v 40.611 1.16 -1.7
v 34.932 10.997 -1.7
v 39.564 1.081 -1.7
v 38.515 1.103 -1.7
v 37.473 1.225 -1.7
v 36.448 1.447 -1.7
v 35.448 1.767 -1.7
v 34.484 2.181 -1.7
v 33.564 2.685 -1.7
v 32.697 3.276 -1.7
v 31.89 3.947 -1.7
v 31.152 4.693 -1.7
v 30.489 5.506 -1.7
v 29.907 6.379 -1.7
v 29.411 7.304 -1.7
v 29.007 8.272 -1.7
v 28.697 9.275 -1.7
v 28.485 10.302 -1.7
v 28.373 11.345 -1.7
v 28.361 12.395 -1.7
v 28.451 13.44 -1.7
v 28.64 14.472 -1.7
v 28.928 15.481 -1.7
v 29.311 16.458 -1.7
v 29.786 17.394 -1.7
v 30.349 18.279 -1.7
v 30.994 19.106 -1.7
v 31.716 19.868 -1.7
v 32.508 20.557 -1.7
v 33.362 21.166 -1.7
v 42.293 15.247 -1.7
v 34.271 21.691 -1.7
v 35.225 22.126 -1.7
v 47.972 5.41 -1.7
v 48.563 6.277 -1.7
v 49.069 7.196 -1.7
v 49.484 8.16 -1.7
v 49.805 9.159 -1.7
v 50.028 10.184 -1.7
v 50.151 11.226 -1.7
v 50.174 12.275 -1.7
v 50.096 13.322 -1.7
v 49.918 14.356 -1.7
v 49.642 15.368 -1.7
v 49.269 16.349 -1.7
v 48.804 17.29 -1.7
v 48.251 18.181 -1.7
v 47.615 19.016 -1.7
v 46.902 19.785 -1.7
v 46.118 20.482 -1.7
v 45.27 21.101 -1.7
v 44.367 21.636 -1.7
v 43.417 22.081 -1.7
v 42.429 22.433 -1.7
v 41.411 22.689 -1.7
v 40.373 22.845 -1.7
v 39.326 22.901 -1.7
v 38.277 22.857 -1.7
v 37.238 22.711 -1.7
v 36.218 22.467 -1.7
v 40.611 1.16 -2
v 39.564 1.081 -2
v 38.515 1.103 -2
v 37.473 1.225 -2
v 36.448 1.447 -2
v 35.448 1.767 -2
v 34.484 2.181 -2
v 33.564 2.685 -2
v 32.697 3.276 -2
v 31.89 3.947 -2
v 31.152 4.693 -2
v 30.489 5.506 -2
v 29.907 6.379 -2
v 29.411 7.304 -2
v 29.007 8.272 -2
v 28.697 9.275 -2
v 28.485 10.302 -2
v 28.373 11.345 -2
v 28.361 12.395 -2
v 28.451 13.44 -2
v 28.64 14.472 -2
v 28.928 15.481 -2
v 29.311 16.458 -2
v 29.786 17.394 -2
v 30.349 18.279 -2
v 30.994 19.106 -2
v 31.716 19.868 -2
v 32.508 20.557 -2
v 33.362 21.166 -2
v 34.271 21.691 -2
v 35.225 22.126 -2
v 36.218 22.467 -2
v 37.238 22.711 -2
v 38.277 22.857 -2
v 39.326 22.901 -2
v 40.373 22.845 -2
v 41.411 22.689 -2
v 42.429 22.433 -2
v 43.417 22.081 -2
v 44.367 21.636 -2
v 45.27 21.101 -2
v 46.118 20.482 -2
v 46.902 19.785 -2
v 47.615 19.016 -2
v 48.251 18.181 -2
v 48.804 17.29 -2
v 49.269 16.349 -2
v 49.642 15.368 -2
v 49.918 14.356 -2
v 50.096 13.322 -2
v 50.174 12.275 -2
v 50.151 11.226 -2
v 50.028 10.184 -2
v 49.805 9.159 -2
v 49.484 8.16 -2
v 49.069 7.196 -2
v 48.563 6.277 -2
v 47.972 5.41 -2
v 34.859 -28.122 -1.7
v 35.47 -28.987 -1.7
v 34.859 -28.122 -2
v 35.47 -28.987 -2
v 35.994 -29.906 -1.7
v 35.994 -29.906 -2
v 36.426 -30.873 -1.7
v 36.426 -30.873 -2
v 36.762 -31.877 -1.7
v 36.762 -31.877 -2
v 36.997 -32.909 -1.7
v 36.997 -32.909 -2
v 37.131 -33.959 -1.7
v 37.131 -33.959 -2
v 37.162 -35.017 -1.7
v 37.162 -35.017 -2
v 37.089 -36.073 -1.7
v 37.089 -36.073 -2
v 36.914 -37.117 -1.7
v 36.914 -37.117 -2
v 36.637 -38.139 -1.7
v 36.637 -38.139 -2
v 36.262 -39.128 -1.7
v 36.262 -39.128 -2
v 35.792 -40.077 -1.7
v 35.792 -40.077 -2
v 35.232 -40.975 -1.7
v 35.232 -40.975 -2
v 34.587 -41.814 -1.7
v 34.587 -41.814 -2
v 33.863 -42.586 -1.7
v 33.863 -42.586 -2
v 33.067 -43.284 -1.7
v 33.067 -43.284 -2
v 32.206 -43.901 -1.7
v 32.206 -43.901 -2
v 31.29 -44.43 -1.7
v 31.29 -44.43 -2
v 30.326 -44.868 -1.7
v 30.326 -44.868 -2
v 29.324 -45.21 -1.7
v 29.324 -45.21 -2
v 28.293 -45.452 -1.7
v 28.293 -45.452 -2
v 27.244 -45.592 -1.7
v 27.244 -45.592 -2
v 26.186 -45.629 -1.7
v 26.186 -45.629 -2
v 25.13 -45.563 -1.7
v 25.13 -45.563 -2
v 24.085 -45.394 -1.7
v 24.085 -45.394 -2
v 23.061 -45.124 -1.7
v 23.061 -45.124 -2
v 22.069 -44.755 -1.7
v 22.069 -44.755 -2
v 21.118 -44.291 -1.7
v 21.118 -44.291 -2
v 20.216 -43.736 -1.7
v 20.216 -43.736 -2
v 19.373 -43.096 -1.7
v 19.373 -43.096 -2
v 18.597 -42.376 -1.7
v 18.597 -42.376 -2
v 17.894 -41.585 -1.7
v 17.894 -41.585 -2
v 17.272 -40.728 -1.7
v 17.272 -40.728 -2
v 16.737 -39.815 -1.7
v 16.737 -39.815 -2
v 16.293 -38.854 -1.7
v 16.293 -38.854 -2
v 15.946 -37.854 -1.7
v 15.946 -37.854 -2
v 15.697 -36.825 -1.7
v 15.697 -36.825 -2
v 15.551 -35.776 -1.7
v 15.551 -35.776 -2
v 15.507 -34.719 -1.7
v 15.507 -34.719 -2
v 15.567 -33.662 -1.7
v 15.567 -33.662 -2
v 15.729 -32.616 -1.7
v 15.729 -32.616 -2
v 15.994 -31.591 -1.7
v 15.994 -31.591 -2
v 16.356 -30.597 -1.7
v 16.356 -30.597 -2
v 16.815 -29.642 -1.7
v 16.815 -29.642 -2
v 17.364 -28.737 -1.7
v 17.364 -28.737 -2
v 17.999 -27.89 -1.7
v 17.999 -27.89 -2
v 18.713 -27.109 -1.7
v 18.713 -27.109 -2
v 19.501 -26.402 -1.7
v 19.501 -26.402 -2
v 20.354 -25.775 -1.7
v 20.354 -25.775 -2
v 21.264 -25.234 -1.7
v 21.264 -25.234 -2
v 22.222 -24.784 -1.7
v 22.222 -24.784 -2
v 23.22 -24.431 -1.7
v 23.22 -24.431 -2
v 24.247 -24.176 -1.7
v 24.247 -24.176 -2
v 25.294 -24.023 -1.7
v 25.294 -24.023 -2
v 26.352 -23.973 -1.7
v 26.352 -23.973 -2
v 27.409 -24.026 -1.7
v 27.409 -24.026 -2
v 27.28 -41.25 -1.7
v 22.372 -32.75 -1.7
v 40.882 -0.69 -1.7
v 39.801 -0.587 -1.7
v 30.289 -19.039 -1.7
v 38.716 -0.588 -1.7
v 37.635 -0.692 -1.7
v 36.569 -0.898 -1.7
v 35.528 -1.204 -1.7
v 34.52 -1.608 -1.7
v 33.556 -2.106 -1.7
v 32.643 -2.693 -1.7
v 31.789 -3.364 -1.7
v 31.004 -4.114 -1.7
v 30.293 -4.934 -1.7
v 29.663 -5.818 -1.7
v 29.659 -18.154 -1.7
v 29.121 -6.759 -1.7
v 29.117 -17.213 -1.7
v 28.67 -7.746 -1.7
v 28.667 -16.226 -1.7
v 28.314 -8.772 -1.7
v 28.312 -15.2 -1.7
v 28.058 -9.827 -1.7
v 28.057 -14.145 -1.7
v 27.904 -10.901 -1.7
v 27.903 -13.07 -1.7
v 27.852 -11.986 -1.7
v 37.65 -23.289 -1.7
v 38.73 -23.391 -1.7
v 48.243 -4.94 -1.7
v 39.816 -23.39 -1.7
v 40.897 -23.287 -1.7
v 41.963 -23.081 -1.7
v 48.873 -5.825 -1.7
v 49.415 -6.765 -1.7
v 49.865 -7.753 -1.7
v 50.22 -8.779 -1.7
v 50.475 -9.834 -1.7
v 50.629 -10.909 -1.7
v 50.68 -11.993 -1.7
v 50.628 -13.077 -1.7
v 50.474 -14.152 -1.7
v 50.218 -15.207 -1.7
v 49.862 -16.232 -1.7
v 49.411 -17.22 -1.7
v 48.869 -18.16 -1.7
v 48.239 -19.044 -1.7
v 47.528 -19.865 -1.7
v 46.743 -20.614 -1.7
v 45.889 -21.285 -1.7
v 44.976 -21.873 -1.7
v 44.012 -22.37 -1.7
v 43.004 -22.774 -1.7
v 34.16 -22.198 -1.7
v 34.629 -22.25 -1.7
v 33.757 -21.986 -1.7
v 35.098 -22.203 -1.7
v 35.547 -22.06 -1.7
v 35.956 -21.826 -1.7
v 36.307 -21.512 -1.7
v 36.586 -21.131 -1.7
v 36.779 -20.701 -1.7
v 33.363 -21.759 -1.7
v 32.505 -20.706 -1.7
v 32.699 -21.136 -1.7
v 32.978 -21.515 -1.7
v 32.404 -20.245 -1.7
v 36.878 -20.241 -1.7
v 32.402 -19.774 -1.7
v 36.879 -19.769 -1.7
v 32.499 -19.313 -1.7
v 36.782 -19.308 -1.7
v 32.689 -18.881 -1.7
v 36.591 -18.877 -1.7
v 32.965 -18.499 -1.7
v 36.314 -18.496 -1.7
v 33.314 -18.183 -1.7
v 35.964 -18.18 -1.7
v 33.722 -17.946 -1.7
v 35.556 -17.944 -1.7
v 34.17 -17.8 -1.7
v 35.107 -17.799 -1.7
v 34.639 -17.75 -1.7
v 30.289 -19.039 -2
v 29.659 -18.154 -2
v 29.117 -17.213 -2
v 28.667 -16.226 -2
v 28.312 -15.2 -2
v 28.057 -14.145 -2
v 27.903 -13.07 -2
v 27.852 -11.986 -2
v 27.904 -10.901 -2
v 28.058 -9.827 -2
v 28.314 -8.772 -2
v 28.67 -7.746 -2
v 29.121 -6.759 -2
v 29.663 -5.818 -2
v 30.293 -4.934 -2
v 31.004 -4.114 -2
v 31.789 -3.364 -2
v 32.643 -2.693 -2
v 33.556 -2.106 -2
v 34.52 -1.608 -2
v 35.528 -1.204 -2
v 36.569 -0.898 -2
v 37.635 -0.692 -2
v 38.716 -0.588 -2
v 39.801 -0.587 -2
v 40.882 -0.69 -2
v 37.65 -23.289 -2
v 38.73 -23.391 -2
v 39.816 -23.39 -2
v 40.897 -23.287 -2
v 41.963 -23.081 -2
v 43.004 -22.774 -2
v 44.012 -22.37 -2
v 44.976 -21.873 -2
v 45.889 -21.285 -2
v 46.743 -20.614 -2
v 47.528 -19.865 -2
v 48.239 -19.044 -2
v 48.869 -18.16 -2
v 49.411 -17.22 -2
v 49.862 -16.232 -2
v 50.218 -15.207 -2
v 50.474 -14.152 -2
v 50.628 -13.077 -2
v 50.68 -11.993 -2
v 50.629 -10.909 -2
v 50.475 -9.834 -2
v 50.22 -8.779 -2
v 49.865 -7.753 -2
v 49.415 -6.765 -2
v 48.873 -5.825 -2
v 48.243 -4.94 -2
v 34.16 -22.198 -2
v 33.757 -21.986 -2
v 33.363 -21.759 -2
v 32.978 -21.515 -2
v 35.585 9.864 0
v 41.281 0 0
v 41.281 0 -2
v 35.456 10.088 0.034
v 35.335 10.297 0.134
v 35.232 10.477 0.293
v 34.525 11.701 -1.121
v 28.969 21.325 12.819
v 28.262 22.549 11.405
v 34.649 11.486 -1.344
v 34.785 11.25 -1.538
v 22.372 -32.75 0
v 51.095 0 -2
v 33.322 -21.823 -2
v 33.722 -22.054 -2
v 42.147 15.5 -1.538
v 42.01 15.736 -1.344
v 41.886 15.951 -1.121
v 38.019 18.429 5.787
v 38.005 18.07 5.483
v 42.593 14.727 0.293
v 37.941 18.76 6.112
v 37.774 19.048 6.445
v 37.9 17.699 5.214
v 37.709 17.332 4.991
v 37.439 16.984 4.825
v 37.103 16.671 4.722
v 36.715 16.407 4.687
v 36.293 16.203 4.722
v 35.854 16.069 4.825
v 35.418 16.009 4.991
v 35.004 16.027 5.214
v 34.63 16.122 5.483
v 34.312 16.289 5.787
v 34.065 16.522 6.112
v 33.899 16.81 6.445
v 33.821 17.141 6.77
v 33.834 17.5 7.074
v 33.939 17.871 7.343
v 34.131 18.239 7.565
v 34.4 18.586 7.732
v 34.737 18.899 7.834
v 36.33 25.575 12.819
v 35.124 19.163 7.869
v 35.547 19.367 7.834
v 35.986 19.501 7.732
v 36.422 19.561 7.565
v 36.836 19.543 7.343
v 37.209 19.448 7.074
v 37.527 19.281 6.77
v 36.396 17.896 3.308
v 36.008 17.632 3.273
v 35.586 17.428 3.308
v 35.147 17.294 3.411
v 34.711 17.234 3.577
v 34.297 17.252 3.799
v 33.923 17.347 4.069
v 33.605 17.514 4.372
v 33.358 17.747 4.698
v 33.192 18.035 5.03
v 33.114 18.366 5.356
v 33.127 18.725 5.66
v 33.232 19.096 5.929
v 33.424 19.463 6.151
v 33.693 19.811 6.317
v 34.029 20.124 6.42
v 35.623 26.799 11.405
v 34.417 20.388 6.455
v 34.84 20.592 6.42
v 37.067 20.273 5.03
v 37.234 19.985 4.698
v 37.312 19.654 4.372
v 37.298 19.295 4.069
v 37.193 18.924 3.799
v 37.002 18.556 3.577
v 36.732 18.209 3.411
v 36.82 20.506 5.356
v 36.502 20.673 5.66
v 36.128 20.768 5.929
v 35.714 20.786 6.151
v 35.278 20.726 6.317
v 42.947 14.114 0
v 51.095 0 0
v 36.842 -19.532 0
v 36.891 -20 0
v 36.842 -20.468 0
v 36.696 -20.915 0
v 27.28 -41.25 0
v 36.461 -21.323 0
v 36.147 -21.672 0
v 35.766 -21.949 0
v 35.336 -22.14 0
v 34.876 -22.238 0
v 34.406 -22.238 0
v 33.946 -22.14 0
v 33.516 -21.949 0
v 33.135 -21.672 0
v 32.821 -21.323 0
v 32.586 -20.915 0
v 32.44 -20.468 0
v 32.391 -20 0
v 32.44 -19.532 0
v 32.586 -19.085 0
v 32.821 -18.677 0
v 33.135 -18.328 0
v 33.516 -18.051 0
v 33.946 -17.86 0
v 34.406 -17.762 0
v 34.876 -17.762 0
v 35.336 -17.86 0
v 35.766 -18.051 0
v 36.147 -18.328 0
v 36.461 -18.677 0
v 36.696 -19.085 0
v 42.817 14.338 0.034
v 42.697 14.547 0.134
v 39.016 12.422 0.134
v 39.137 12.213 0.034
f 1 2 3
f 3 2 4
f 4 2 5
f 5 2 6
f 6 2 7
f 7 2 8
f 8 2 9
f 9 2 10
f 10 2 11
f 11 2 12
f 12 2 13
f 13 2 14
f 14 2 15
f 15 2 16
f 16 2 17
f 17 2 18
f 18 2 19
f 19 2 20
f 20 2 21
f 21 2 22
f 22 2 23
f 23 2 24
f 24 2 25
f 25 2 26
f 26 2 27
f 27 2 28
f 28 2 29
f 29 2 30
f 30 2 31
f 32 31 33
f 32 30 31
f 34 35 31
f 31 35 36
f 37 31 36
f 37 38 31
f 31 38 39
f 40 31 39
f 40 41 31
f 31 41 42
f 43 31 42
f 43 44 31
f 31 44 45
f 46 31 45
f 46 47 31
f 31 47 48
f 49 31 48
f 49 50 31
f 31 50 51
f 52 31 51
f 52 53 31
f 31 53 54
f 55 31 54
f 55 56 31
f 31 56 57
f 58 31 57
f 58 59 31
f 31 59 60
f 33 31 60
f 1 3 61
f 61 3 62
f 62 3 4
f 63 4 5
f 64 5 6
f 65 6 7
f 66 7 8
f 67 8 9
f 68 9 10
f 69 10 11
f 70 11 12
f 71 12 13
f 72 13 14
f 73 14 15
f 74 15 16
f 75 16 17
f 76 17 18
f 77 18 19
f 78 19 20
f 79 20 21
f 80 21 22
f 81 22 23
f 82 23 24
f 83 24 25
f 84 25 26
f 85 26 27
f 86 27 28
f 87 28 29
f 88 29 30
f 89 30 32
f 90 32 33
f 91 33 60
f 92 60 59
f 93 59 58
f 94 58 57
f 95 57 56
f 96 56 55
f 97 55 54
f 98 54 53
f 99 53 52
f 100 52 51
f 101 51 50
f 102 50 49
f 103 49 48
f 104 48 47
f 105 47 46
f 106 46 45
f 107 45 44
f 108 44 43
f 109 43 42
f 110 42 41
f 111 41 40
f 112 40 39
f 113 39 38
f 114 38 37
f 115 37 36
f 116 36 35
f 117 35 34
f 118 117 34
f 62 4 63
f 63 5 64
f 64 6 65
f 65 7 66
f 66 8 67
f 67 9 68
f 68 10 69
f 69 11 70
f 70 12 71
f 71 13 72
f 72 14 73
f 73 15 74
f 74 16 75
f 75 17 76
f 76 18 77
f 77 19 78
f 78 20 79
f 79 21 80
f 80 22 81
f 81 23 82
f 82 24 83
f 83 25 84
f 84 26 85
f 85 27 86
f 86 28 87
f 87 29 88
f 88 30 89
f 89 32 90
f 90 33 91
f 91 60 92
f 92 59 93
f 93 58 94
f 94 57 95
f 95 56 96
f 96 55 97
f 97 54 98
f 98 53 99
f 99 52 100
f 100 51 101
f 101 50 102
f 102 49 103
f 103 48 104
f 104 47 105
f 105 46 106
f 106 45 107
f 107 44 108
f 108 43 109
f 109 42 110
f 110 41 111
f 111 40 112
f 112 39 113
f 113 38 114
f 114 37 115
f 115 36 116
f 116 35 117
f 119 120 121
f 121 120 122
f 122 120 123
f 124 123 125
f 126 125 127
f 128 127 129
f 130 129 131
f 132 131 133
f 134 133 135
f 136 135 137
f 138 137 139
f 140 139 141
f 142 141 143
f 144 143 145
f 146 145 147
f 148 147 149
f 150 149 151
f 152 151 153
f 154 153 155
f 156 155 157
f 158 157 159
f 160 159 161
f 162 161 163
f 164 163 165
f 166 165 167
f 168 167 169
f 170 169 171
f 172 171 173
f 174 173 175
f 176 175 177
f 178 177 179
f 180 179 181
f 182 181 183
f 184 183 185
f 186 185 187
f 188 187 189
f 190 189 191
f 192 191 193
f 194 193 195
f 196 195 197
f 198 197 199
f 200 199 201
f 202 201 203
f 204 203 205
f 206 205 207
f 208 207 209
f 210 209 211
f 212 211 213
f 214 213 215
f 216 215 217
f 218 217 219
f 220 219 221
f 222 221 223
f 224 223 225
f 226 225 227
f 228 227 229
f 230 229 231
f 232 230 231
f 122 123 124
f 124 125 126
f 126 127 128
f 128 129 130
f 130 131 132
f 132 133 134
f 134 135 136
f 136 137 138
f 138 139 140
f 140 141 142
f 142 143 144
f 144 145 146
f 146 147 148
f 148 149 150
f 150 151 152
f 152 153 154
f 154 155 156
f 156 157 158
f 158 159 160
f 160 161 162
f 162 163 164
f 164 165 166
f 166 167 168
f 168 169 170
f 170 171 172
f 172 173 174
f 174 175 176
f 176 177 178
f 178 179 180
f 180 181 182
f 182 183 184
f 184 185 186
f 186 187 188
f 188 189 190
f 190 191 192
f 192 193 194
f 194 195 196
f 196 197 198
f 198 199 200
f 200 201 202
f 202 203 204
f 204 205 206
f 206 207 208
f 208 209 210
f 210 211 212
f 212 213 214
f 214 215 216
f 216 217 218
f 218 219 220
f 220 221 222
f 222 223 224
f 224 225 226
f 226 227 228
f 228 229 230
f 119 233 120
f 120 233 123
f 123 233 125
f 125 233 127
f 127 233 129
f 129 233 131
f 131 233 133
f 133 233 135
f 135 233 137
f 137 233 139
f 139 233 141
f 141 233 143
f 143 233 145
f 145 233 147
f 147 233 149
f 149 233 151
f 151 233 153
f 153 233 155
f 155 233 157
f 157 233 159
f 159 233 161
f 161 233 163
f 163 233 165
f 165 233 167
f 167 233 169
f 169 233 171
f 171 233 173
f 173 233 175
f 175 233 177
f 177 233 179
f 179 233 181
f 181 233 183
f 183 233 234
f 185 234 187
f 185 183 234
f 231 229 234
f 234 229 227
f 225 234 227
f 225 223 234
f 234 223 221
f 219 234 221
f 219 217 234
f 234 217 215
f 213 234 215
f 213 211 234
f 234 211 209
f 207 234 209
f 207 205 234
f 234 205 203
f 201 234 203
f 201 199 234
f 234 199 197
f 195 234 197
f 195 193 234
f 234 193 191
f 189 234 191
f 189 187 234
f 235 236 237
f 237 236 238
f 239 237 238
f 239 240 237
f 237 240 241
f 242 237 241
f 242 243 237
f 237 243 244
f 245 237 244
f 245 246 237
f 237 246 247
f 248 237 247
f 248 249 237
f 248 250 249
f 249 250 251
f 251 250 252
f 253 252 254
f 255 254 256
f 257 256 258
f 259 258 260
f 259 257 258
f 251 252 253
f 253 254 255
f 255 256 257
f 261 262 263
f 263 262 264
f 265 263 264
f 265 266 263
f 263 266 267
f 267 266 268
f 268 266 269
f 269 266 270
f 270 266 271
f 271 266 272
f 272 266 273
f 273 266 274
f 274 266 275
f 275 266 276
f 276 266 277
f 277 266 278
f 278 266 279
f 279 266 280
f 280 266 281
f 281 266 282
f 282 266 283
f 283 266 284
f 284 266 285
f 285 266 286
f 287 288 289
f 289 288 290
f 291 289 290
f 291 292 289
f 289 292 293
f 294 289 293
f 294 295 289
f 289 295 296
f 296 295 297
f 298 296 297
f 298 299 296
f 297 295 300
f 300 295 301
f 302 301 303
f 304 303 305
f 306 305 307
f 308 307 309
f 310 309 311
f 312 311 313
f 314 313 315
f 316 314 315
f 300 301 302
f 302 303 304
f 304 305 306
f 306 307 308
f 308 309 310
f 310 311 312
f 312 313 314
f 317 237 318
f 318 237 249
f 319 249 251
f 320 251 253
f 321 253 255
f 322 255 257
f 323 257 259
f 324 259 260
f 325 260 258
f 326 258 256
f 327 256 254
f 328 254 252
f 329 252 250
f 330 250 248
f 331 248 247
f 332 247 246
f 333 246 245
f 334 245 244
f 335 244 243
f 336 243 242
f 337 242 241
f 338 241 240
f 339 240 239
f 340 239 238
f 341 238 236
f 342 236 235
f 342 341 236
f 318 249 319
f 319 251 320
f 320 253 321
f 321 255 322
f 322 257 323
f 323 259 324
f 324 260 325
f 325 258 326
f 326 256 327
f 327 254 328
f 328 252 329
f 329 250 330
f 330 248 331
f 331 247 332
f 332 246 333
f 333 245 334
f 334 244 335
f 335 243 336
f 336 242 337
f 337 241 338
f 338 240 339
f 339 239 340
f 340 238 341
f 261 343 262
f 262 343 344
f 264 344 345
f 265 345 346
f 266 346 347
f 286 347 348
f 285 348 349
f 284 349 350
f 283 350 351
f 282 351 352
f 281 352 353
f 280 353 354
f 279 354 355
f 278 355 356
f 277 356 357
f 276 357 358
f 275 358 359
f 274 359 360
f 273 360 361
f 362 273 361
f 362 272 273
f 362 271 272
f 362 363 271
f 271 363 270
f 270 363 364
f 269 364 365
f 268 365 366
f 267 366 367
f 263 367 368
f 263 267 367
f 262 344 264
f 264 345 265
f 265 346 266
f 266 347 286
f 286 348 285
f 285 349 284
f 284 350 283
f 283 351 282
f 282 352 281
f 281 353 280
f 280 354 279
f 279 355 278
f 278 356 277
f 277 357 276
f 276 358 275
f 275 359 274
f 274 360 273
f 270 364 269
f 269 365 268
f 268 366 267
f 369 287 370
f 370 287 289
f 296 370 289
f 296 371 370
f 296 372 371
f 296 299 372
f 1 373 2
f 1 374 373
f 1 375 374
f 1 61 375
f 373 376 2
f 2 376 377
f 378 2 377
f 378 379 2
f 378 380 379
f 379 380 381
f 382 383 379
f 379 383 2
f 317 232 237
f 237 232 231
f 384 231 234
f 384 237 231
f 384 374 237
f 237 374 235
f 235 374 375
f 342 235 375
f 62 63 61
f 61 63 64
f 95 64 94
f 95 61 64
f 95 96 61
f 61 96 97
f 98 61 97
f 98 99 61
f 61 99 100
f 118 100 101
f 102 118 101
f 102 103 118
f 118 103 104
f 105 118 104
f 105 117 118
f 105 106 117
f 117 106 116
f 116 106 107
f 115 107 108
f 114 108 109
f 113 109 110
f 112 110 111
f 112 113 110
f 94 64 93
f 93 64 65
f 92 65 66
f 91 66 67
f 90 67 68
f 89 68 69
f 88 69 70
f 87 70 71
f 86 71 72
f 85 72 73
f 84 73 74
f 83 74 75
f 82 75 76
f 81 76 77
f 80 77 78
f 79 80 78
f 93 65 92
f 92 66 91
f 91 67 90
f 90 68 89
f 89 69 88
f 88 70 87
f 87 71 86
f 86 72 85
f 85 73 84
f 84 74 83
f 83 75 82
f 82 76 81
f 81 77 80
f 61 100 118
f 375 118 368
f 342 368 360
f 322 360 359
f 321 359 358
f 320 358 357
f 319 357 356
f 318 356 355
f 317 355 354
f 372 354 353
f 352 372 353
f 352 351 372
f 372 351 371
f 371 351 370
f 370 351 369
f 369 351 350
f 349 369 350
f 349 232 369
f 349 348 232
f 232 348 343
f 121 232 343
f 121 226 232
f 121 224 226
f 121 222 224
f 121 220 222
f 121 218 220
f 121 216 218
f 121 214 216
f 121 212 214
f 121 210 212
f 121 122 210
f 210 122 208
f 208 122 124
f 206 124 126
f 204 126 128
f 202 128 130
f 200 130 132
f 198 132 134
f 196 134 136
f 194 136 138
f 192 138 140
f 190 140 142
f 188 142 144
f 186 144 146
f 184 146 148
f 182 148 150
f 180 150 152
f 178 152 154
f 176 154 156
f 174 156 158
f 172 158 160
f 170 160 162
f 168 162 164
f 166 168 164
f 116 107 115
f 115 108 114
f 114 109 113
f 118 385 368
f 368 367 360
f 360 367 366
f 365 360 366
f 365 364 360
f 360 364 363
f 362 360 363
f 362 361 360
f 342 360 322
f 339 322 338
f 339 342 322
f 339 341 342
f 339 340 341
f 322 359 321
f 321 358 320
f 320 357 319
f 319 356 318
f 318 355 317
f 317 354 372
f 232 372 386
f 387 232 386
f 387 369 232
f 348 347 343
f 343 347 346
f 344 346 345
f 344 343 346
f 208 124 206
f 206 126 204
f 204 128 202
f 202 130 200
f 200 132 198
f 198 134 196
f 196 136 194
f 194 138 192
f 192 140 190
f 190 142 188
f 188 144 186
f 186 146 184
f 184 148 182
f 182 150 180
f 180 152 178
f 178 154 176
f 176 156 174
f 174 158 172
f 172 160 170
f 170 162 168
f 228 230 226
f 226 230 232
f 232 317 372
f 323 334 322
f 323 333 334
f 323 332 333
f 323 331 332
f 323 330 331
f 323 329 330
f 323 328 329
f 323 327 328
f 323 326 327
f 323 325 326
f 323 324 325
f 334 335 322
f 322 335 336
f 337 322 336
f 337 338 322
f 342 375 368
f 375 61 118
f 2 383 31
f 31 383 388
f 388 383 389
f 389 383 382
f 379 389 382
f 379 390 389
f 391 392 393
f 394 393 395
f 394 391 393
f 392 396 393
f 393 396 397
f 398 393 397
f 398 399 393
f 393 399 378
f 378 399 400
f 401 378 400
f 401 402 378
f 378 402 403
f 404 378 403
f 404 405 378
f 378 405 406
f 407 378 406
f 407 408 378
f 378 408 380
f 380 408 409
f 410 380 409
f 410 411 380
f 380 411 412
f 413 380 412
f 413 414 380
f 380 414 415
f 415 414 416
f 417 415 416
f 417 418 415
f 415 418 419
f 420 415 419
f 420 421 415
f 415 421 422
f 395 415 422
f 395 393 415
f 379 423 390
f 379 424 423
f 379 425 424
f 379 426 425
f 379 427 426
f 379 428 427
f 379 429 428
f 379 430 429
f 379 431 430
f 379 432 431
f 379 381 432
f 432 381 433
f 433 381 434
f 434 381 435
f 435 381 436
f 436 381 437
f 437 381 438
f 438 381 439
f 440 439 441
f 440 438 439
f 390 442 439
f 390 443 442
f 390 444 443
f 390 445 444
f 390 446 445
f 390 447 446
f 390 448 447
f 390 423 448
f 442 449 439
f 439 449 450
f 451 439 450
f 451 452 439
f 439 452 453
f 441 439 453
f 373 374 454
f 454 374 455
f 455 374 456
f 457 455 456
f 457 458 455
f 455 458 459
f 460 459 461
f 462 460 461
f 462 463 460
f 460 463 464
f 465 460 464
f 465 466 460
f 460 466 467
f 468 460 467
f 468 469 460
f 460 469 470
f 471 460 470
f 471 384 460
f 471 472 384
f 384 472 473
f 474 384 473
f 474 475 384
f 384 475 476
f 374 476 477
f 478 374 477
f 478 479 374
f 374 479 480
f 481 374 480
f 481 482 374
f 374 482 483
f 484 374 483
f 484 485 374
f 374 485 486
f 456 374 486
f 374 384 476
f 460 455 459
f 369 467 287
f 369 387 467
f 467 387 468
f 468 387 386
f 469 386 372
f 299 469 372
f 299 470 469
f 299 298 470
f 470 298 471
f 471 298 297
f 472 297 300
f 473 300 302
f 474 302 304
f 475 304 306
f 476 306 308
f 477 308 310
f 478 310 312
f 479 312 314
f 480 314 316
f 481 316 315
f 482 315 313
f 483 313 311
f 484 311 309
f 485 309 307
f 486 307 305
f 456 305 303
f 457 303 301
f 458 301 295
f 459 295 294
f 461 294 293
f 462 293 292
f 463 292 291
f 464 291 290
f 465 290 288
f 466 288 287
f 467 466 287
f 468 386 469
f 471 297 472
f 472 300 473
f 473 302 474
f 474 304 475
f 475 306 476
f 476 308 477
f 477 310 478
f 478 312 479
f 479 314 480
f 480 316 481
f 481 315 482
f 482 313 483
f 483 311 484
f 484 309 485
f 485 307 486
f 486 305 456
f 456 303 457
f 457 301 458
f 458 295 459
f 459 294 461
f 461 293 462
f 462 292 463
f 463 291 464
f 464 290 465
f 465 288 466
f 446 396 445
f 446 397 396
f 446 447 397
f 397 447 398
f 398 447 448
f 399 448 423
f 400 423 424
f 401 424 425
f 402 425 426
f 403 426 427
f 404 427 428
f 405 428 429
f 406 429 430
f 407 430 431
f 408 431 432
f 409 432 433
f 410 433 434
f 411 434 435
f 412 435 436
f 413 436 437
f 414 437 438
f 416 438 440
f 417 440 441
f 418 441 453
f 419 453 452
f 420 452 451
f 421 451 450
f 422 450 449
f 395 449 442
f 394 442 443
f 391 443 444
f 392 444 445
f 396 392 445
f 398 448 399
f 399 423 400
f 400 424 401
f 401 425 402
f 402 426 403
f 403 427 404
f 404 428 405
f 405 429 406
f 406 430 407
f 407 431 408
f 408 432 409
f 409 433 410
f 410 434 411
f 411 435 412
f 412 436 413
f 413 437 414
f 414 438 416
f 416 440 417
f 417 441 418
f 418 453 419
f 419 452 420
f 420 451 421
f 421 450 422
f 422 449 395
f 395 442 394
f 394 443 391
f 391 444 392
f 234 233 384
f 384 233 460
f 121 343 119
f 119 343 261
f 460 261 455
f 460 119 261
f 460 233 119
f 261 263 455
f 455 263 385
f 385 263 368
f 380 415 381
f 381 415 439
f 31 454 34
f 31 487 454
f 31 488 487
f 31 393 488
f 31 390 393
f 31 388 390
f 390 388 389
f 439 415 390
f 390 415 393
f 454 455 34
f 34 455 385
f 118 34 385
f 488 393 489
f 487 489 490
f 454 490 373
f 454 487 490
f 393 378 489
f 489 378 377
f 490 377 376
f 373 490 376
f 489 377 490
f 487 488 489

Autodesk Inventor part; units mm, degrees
ref_plane "YZ Plane" through (0, 0, 0) normal (1, 0, 0) x (0, 1, 0)
ref_plane "XZ Plane" through (0, 0, 0) normal (0, 1, 0) x (-1, 0, 0)
sketch "Sketch1" plane through (0, 0, 0) normal (0, 0, 1) x (1, 0, 0)
  circle A0 centre (0, 0) radius 7.5
  line L0 (-21.2869, 0) -> (22.3896, 0) construction
  line L1 (0, 21.9302) -> (0, -69.0741) construction
  line L2 (24.9778, -67) -> (-24.9778, -67) construction
  line L3 (-17.5, -57) -> (17.5, -57)
  line L4 (17.5, -57) -> (17.5, -67)
  line L5 (17.5, -67) -> (-17.5, -67)
  line L6 (-17.5, -67) -> (-17.5, -57)
  line L7 (-37.5278, -67) -> (-18.5, -67)
  line L8 (-18.5, -67) -> (-18.5, -56)
  line L9 (-17.5, -62) -> (17.5, -62) construction
  line L10 (-18.5, -59) -> (-22.5, -59)
  line L11 (-22.5, -59) -> (-22.5, -65)
  line L12 (-22.5, -65) -> (-18.5, -65)
  line L13 (-18.5, -65) -> (-18.5, -59)
  line L14 (-17.5, -60) -> (-21.5, -60)
  line L15 (-21.5, -60) -> (-21.5, -64)
  line L16 (-21.5, -64) -> (-17.5, -64)
  line L17 (-17.5, -64) -> (-17.5, -60)
  line L18 (-18.5, -56) -> (-28.8675, -56)
  line L19 (17.5, -60) -> (21.5, -60)
  line L20 (21.5, -60) -> (21.5, -64)
  line L21 (21.5, -64) -> (17.5, -64)
  line L22 (17.5, -64) -> (17.5, -60)
  line L23 (18.5, -67) -> (18.5, -56)
  line L24 (18.5, -67) -> (37.5278, -67)
  line L25 (18.5, -65) -> (22.5, -65)
  line L26 (22.5, -65) -> (22.5, -59)
  line L27 (22.5, -59) -> (18.5, -59)
  line L28 (18.5, -59) -> (18.5, -65)
  line L29 (18.5, -56) -> (28.8675, -56)
  line L30 (-23.7704, -40) -> (28.6931, -40) construction
  line L31 (-17.1762, -35.75) -> (17.1762, -35.75)
  line L32 (-22.0836, -44.25) -> (22.0836, -44.25)
  circle A1 centre (0, -40) radius 2.25
  line L33 (-7.5, -16) -> (7.5, -16)
  line L34 (7.5, -16) -> (7.5, -21)
  line L35 (7.5, -26) -> (-7.5, -26)
  line L36 (-7.5, -26) -> (-7.5, -24)
  line L37 (7.5, -21) -> (-7.5, -21) construction
  line L38 (-7.5, -18) -> (-3.5, -18)
  line L39 (-3.5, -18) -> (-3.5, -21)
  line L40 (-3.5, -24) -> (-7.5, -24)
  line L41 (-7.5, -24) -> (-7.5, -23)
  line L42 (-8.5, -19) -> (-4.5, -19)
  line L43 (-4.5, -19) -> (-4.5, -23)
  line L44 (-4.5, -23) -> (-8.5, -23)
  line L45 (-8.5, -23) -> (-8.5, -19)
  line L46 (7.5, -18) -> (3.5, -18)
  line L47 (3.5, -18) -> (3.5, -21)
  line L48 (3.5, -24) -> (7.5, -24)
  line L49 (7.5, -24) -> (7.5, -18)
  line L50 (8.5, -19) -> (4.5, -19)
  line L51 (4.5, -19) -> (4.5, -23)
  line L52 (4.5, -23) -> (8.5, -23)
  line L53 (8.5, -23) -> (8.5, -19)
  line L54 (-9.815, -19) -> (-31.1769, -56)
  line L55 (-7.5056, -19) -> (-28.8675, -56)
  line L56 (7.5056, -19) -> (28.8675, -56)
  line L57 (-4.5, -21) -> (-8.5, -21)
  line L58 (4.5, -21) -> (8.5, -21)
  line L59 (-21.5, -62) -> (-17.5, -62)
  line L60 (17.5, -62) -> (21.5, -62)
  line L61 (-22.5, -62) -> (-18.5, -62)
  line L62 (22.5, -62) -> (18.5, -62)
  line L63 (-7.5, -21) -> (-3.5, -21)
  line L64 (3.5, -21) -> (7.5, -21)
  line L65 (-28.8675, -56) -> (-31.1769, -56)
  line L66 (28.8675, -56) -> (31.1769, -56)
  line L67 (-10.8853, -24.8539) -> (-12.6173, -23.8539)
  line L68 (10.8875, -24.8576) -> (12.6195, -23.8576)
  line L69 (7.5, -23) -> (7.5, -24)
  line L70 (-7.5, -23) -> (-7.5, -21)
  line L71 (-7.5, -24) -> (-7.5, -16)
  line L72 (7.5, -24) -> (7.5, -26)
  line L73 (-7.5, -21) -> (-7.5, -18)
  line L74 (-3.5, -21) -> (-3.5, -24)
  line L75 (3.5, -21) -> (3.5, -24)
  line L76 (7.5, -21) -> (7.5, -23)
  line L77 (-18.4752, 0) -> (-9.2376, 16)
  line L78 (-9.2376, 16) -> (9.2376, 16)
  line L79 (9.2376, 16) -> (18.4752, 0)
  line L80 (18.4752, 0) -> (9.2376, -16)
  line L81 (9.2376, -16) -> (-9.2376, -16)
  line L82 (-9.2376, -16) -> (-18.4752, 0)
  line L83 (-77.3649, 0) -> (-38.6825, 67) construction
  line L84 (-38.6825, 67) -> (38.6825, 67) construction
  line L85 (38.6825, 67) -> (77.3649, 0) construction
  line L86 (77.3649, 0) -> (38.6825, -67) construction
  line L87 (38.6825, -67) -> (-38.6825, -67) construction
  line L88 (-38.6825, -67) -> (-77.3649, 0) construction
  line L89 (-9.2376, -16) -> (-38.6825, -67) construction
  line L90 (9.2376, -16) -> (38.6825, -67) construction
  line L91 (0, -16.7974) -> (0, -26) construction
  line L92 (9.815, -19) -> (31.1769, -56)
  line L93 (-8.5, -19) -> (-9.815, -19)
  line L94 (8.5, -19) -> (9.815, -19)
  line L95 (-8.5, -23) -> (-9.815, -23)
  line L96 (8.5, -23) -> (9.815, -23)
  line L97 (-31.1769, -56) -> (-37.5278, -67)
  line L98 (31.1769, -56) -> (37.5278, -67)
  circle A2 centre (12.25, 0) radius 2.25
  circle A3 centre (6.125, 10.6088) radius 2.25
  circle A4 centre (-6.125, 10.6088) radius 2.25
  circle A5 centre (-12.25, 0) radius 2.25
  circle A6 centre (-6.125, -10.6088) radius 2.25
  circle A7 centre (6.125, -10.6088) radius 2.25
  line L99 (22.3723, -32.75) -> (39.5485, -3)
  line L100 (27.2798, -41.25) -> (49.3634, -3)
  circle A8 centre (34.641, -20) radius 2.25
  line L101 (39.5485, 3) -> (22.3723, 32.75)
  line L102 (49.3634, 3) -> (27.2798, 41.25)
  circle A9 centre (34.641, 20) radius 2.25
  line L103 (17.1762, 35.75) -> (-17.1762, 35.75)
  line L104 (22.0836, 44.25) -> (-22.0836, 44.25)
  circle A10 centre (0, 40) radius 2.25
  line L105 (-22.3723, 32.75) -> (-39.5485, 3)
  line L106 (-27.2798, 41.25) -> (-49.3634, 3)
  circle A11 centre (-34.641, 20) radius 2.25
  line L107 (-39.5485, -3) -> (-22.3723, -32.75)
  line L108 (-49.3634, -3) -> (-27.2798, -41.25)
  circle A12 centre (-34.641, -20) radius 2.25
  line L109 (22.3723, -32.75) -> (27.2798, -41.25)
  line L110 (49.3634, -3) -> (51.0955, 0)
  line L111 (49.3634, 3) -> (51.0955, 0)
  line L112 (39.5485, -3) -> (41.2805, 0)
  line L113 (39.5485, 3) -> (41.2805, 0)
  line L114 (7.3612, 4.25) -> (38.8268, 4.25)
  line L115 (7.3612, -4.25) -> (38.8268, -4.25)
  arc A13 (8.5, 0) -> (7.3612, 4.25) centre (0, 0) ccw
  arc A14 (7.3612, -4.25) -> (8.5, 0) centre (0, 0) ccw
  arc A15 (7.3612, 4.25) -> (7.3612, -4.25) centre (0, 0) ccw
  line L116 (22.3723, 32.75) -> (27.2798, 41.25)
  line L117 (35.5854, -9.8643) -> (42.9466, -14.1143)
  line L118 (42.9466, 14.1143) -> (35.5854, 9.8643)
  line L119 (26.3354, 25.8857) -> (33.6966, 30.1357)
  line L120 (26.3354, -25.8857) -> (33.6966, -30.1357)
  circle A16 centre (39.266, 11.9893) radius 10.9122
  circle A17 centre (39.266, -11.9893) radius 11.4144
  circle A18 centre (26.3354, -34.8015) radius 10.8288
  circle A19 centre (26.3354, 34.635) radius 11.4085
  point P0 (0, -57)
  point P1 (0, -67)
  point P2 (0, -62)
  point P3 (0, -21)
  dimension "d0" = 15
  dimension "d16" = 10
  dimension "d20" = 6
  dimension "d21" = 4
  dimension "d22" = 4
  dimension "d23" = 1
  dimension "d24" = 1
  dimension "d25" = 35
  dimension "d27" = 3
  dimension "d28" = 4
  dimension "d29" = 1
  dimension "d30" = 6
  dimension "d31" = 4
  dimension "d32" = 1
  dimension "d34" = 3
  dimension "d35" = 27
  dimension "d39" = 4.5
  dimension "d41" = 2
  dimension "d42" = 2
  dimension "d44" = 10
  dimension "d45" = 4
  dimension "d46" = 6
  dimension "d48" = 4
  dimension "d49" = 1
  dimension "d50" = 4
  dimension "d52" = 6
  dimension "d53" = 4
  dimension "d54" = 4
  dimension "d55" = 1
  dimension "d56" = 4
  dimension "d57" = 15
  dimension "d60" = 2
  dimension "d81" = 16
  dimension "d83" = 67
  dimension "d84" = 1
  dimension "d86" = 2
  dimension "d87" = 1
  dimension "d88" = 5
  dimension "d89" = 3
  dimension "d90" = 3
  dimension "d112" = 4.5
  dimension "d113" = 2.5
  dimension "d116" = 360
  dimension "d120" = 360
  dimension "d122" = 2
  dimension "d123" = 2
  dimension "d124" = 1
  dimension "d127" = 7
  dimension "d128" = 7
  dimension "d131" = 7
  dimension "d134" = 7
extrude "Extrusion8" add sketch "Sketch1" against normal blind 2 contours A18 L100 L120 L99 | L99 A17 A8 L100 A18 | L120 L100 L109 L99 | L99 L117 L100 A17 A8 | L99 L112 A17 L100 L117 | L112 L113 A16 L102 L111 L110 L100 A17 | L113 L101 L118 L102 A16 | A16 A9 L102 L118 L101 | L101 A19 L102 A16 A9 | L101 L119 L102 A19
bend part "Bend Part1" radius 1 angle 45 line through (42.9466, 14.1143, 0) along (-0.8660254, -0.5, 0) centre toward (0, 0, 1) moving side (-0.5, 0.8660254, 0) both sides no
ref_plane "Work Plane1" through (0, 0, -2) normal (0, 0, 1) x (1, 0, 0)
sketch "Sketch2" plane through (0, 0, -2) normal (0, 0, 1) x (1, 0, 0)
  circle A0 centre (26.3354, 34.635) radius 11.4085 projected
  circle A1 centre (39.266, 11.9893) radius 10.9122 projected
  circle A2 centre (39.266, -11.9893) radius 11.4144 projected
  circle A3 centre (26.3354, -34.8015) radius 10.8288 projected
  point P0 (0, 0)
extrude "Extrusion9" add sketch "Sketch2" along normal blind 0.3 contours A1 | A2 | A3
equation "\"d20\" = hinge_w"
equation "\"d21\" = hinge_d"
equation "\"d22\" = hinge_w - 2 * hinge_sp"
equation "\"d23\" = hinge_sp"
equation "\"d24\" = sp"
equation "\"d28\" = hinge_w - 2 * hinge_sp"
equation "\"d29\" = sp"
equation "\"d30\" = hinge_w"
equation "\"d31\" = hinge_d"
equation "\"d32\" = hinge_sp"
equation "\"d39\" = screw"
equation "\"d45\" = hinge_d"
equation "\"d46\" = hinge_w"
equation "\"d48\" = hinge_d"
equation "\"d49\" = hinge_sp"
equation "\"d50\" = hinge_w - 2 * hinge_sp"
equation "\"screw\" = 4.5"
equation "\"k\" = 0.4"
equation "\"sp\" = 1"
equation "\"d14\" = sp"
equation "\"d15\" = sp"
equation "\"d19\" = sp"
equation "\"hinge_d\" = 4"
equation "\"hinge_w\" = 6"
equation "\"hinge_sp\" = 1"
properties part number "RobotBase" material "Glass"
